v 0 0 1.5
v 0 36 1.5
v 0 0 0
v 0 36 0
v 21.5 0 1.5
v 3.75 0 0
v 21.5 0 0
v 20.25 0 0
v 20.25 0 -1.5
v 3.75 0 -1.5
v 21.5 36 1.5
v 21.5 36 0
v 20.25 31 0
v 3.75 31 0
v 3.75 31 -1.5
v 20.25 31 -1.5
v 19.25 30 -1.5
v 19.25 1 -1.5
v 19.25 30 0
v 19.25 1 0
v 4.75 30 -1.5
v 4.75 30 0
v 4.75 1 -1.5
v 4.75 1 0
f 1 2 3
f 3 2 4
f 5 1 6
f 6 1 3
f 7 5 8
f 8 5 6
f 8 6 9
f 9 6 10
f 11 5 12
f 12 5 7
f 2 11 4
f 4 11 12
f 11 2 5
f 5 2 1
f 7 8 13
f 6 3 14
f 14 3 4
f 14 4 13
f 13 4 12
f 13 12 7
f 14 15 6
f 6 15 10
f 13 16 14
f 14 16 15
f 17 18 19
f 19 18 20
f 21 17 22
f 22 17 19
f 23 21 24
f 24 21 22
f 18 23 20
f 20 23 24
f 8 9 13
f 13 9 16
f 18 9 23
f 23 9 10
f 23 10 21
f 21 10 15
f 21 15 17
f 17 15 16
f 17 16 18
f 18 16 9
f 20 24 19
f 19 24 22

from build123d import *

# Parameters (mm, degrees)
SKETCH1_W           = 21.5
SKETCH1_H           = 36
BOSS_EXTRUDE1_DEPTH = 1.5
SKETCH2_W           = 14.5
SKETCH2_H           = 1
BOSS_EXTRUDE2_DEPTH = 3


with BuildPart() as part:
    # Sketch1 → Boss-Extrude1 (new body)
    with BuildSketch(Plane.XY):
        with Locations((10.75, 18)):
            Rectangle(SKETCH1_W, SKETCH1_H)
    extrude(amount=BOSS_EXTRUDE1_DEPTH)

    # Sketch2 → Boss-Extrude2 (add)
    with BuildSketch(Plane.XY.offset(1.5)):
        Polygon((3.75, 0), (4.75, 0), (4.75, 1), (4.75, 30), (3.75, 30), align=None)
        with Locations((12, 0.5)):
            Rectangle(SKETCH2_W, SKETCH2_H)
        Polygon((19.25, 0), (20.25, 0), (20.25, 31), (19.25, 31), (19.25, 30), (19.25, 1), align=None)
        Polygon((19.25, 30), (19.25, 31), (3.75, 31), (3.75, 30), (4.75, 30), align=None)
    extrude(amount=-BOSS_EXTRUDE2_DEPTH)


solid = part.part
